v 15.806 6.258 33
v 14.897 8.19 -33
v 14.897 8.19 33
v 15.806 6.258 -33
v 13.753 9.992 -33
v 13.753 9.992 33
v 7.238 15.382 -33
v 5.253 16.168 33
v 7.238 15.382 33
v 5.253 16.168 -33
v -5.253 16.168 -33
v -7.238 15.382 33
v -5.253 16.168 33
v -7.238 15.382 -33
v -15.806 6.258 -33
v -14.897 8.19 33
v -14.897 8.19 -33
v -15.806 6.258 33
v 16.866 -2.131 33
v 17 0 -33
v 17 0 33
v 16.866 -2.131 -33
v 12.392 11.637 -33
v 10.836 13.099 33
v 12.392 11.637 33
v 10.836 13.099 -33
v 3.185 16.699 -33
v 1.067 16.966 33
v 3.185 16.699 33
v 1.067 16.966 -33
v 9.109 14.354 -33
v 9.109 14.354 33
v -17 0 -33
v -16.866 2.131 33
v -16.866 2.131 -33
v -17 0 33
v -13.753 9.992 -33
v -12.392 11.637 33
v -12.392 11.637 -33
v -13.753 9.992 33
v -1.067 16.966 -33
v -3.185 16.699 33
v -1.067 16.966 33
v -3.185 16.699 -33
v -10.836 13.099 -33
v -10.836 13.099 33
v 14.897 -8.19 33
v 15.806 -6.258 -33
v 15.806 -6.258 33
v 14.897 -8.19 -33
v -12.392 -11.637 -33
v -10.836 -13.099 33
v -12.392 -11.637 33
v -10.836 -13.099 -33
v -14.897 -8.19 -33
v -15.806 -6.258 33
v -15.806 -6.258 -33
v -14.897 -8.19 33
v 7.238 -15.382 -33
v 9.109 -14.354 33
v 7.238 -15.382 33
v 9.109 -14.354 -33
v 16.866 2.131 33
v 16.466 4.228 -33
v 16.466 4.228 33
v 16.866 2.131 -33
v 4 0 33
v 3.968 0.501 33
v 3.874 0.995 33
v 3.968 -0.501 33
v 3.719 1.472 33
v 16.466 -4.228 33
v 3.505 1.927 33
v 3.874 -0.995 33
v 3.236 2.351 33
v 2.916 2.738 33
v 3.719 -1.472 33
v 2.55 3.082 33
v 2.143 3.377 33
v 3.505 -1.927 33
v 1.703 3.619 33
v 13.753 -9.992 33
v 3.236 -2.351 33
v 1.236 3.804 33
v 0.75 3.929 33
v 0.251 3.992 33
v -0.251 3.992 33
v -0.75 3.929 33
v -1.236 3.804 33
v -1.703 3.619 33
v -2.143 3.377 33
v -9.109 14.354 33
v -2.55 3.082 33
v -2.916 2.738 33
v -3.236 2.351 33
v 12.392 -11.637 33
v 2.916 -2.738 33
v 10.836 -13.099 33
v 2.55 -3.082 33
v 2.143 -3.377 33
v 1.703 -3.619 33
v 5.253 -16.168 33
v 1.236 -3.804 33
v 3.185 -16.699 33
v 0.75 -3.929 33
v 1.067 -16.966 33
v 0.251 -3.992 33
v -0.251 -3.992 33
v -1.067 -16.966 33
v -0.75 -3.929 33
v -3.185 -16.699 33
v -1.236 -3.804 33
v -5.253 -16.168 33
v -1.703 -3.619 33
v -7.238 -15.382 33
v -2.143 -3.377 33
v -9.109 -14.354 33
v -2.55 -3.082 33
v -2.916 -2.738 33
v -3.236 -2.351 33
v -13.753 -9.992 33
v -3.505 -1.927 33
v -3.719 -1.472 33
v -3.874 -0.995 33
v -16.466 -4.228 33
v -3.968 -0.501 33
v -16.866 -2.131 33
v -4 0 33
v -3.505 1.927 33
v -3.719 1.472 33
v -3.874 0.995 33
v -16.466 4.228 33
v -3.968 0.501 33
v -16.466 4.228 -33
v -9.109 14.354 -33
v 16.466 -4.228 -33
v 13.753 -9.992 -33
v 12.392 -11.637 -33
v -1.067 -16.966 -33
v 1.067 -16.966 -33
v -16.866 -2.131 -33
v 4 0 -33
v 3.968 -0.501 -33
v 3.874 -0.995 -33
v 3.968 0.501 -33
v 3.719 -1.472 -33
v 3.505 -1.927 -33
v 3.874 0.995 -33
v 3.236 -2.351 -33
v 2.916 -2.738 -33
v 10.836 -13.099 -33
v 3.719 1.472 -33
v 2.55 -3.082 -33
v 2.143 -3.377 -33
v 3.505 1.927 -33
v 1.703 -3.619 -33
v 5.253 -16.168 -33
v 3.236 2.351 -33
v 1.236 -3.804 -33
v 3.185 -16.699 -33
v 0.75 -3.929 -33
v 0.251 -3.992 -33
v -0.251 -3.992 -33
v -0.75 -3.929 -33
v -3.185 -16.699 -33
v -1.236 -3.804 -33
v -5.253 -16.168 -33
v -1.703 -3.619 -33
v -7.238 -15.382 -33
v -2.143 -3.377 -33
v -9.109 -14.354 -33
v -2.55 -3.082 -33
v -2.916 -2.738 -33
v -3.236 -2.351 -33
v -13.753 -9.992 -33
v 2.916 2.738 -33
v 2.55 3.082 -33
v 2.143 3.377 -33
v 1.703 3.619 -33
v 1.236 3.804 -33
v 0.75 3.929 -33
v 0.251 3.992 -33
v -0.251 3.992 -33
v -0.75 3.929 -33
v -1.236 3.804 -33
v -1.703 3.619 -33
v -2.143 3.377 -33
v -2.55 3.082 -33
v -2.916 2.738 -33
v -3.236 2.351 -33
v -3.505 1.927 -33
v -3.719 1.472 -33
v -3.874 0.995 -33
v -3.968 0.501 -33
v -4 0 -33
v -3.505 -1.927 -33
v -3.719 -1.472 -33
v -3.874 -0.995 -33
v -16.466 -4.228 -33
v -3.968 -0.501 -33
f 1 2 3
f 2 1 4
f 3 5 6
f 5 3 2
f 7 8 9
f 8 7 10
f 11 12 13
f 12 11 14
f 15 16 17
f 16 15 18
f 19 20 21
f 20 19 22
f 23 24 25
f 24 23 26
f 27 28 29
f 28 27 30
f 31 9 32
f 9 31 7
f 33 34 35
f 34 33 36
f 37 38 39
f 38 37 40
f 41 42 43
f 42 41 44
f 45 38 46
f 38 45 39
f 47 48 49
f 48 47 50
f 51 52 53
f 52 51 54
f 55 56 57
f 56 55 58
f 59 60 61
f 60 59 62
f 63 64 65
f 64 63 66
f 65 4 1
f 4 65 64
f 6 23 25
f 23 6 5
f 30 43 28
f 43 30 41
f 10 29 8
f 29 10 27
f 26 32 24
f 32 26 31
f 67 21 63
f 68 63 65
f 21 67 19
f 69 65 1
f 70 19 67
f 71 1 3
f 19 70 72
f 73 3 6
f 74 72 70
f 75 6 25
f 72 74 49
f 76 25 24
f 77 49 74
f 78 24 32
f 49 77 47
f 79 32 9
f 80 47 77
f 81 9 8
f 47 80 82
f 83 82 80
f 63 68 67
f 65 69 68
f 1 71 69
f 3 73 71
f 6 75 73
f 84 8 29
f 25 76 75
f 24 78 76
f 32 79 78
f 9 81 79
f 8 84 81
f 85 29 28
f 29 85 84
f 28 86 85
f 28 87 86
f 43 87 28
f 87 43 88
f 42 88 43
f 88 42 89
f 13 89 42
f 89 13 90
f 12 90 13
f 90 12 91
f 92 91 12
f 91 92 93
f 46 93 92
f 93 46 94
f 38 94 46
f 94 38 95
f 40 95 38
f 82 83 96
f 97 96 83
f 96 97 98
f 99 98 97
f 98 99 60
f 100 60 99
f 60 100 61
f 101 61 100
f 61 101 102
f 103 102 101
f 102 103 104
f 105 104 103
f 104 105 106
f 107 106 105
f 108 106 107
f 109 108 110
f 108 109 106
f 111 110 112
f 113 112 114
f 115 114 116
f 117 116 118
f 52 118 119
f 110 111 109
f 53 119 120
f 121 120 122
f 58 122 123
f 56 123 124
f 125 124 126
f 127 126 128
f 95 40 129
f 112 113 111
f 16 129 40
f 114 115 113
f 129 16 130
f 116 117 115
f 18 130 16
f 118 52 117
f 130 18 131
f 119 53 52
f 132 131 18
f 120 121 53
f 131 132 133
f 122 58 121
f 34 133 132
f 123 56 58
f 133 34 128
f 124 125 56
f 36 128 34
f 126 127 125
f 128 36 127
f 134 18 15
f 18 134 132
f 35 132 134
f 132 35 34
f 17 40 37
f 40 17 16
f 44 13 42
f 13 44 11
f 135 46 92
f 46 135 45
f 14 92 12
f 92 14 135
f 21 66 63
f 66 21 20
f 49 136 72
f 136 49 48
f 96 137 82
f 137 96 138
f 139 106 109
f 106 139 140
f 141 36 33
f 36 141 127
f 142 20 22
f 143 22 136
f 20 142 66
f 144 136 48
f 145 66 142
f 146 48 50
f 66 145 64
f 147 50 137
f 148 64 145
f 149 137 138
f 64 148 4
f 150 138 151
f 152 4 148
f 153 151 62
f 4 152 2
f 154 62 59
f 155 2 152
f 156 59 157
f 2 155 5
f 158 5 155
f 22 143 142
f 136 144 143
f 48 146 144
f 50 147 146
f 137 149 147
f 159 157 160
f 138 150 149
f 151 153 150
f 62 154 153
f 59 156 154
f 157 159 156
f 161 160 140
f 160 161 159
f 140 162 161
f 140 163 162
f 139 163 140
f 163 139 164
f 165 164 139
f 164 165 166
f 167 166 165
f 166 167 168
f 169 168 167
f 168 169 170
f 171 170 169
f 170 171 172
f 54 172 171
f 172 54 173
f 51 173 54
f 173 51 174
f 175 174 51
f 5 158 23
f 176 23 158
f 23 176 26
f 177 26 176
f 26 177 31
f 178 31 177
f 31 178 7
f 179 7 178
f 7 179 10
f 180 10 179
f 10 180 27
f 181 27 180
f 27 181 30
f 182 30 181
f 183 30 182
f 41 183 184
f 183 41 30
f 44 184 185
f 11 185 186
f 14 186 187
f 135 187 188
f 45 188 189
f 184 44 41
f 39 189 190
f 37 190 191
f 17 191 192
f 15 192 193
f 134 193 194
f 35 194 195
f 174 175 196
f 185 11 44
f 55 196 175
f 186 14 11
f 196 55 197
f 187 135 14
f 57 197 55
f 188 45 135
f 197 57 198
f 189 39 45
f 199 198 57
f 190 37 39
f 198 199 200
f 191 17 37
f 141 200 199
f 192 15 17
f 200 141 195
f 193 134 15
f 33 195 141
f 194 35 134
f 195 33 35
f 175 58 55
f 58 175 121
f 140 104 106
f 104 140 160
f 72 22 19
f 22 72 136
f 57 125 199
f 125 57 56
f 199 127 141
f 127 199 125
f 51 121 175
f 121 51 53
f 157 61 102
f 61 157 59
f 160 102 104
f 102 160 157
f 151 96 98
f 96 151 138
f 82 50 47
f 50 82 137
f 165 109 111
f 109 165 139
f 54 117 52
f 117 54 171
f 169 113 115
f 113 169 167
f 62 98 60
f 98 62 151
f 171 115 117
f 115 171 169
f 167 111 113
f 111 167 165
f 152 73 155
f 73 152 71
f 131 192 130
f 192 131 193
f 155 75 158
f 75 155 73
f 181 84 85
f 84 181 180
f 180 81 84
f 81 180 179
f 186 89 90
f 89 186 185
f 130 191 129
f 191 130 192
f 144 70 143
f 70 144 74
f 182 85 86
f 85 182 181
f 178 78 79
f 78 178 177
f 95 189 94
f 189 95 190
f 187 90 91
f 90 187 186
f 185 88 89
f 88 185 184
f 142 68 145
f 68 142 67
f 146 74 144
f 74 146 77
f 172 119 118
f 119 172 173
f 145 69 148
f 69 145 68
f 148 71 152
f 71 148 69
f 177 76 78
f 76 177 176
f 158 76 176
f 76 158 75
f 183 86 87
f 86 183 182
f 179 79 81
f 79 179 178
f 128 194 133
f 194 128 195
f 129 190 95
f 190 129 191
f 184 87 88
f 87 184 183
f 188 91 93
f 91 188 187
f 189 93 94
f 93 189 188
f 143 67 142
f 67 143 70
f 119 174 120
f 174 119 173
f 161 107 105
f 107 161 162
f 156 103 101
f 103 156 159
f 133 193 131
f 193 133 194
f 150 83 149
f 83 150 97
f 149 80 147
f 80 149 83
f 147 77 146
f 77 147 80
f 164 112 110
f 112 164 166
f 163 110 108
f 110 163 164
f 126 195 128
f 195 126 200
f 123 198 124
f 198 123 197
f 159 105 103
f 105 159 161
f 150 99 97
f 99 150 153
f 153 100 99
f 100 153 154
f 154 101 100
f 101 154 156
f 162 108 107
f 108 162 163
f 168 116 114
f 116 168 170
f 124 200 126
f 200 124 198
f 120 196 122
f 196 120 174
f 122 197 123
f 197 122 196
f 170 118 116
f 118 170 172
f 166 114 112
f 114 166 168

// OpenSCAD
$fn = 50;


difference() {
	union() {
		translate(v = [0, 0, -33.0000000000]) {
			cylinder(h = 66, r = 17.0000000000);
		}
	}
	union() {
		translate(v = [0, 0, -100.0000000000]) {
			cylinder(h = 200, r = 4);
		}
	}
}
